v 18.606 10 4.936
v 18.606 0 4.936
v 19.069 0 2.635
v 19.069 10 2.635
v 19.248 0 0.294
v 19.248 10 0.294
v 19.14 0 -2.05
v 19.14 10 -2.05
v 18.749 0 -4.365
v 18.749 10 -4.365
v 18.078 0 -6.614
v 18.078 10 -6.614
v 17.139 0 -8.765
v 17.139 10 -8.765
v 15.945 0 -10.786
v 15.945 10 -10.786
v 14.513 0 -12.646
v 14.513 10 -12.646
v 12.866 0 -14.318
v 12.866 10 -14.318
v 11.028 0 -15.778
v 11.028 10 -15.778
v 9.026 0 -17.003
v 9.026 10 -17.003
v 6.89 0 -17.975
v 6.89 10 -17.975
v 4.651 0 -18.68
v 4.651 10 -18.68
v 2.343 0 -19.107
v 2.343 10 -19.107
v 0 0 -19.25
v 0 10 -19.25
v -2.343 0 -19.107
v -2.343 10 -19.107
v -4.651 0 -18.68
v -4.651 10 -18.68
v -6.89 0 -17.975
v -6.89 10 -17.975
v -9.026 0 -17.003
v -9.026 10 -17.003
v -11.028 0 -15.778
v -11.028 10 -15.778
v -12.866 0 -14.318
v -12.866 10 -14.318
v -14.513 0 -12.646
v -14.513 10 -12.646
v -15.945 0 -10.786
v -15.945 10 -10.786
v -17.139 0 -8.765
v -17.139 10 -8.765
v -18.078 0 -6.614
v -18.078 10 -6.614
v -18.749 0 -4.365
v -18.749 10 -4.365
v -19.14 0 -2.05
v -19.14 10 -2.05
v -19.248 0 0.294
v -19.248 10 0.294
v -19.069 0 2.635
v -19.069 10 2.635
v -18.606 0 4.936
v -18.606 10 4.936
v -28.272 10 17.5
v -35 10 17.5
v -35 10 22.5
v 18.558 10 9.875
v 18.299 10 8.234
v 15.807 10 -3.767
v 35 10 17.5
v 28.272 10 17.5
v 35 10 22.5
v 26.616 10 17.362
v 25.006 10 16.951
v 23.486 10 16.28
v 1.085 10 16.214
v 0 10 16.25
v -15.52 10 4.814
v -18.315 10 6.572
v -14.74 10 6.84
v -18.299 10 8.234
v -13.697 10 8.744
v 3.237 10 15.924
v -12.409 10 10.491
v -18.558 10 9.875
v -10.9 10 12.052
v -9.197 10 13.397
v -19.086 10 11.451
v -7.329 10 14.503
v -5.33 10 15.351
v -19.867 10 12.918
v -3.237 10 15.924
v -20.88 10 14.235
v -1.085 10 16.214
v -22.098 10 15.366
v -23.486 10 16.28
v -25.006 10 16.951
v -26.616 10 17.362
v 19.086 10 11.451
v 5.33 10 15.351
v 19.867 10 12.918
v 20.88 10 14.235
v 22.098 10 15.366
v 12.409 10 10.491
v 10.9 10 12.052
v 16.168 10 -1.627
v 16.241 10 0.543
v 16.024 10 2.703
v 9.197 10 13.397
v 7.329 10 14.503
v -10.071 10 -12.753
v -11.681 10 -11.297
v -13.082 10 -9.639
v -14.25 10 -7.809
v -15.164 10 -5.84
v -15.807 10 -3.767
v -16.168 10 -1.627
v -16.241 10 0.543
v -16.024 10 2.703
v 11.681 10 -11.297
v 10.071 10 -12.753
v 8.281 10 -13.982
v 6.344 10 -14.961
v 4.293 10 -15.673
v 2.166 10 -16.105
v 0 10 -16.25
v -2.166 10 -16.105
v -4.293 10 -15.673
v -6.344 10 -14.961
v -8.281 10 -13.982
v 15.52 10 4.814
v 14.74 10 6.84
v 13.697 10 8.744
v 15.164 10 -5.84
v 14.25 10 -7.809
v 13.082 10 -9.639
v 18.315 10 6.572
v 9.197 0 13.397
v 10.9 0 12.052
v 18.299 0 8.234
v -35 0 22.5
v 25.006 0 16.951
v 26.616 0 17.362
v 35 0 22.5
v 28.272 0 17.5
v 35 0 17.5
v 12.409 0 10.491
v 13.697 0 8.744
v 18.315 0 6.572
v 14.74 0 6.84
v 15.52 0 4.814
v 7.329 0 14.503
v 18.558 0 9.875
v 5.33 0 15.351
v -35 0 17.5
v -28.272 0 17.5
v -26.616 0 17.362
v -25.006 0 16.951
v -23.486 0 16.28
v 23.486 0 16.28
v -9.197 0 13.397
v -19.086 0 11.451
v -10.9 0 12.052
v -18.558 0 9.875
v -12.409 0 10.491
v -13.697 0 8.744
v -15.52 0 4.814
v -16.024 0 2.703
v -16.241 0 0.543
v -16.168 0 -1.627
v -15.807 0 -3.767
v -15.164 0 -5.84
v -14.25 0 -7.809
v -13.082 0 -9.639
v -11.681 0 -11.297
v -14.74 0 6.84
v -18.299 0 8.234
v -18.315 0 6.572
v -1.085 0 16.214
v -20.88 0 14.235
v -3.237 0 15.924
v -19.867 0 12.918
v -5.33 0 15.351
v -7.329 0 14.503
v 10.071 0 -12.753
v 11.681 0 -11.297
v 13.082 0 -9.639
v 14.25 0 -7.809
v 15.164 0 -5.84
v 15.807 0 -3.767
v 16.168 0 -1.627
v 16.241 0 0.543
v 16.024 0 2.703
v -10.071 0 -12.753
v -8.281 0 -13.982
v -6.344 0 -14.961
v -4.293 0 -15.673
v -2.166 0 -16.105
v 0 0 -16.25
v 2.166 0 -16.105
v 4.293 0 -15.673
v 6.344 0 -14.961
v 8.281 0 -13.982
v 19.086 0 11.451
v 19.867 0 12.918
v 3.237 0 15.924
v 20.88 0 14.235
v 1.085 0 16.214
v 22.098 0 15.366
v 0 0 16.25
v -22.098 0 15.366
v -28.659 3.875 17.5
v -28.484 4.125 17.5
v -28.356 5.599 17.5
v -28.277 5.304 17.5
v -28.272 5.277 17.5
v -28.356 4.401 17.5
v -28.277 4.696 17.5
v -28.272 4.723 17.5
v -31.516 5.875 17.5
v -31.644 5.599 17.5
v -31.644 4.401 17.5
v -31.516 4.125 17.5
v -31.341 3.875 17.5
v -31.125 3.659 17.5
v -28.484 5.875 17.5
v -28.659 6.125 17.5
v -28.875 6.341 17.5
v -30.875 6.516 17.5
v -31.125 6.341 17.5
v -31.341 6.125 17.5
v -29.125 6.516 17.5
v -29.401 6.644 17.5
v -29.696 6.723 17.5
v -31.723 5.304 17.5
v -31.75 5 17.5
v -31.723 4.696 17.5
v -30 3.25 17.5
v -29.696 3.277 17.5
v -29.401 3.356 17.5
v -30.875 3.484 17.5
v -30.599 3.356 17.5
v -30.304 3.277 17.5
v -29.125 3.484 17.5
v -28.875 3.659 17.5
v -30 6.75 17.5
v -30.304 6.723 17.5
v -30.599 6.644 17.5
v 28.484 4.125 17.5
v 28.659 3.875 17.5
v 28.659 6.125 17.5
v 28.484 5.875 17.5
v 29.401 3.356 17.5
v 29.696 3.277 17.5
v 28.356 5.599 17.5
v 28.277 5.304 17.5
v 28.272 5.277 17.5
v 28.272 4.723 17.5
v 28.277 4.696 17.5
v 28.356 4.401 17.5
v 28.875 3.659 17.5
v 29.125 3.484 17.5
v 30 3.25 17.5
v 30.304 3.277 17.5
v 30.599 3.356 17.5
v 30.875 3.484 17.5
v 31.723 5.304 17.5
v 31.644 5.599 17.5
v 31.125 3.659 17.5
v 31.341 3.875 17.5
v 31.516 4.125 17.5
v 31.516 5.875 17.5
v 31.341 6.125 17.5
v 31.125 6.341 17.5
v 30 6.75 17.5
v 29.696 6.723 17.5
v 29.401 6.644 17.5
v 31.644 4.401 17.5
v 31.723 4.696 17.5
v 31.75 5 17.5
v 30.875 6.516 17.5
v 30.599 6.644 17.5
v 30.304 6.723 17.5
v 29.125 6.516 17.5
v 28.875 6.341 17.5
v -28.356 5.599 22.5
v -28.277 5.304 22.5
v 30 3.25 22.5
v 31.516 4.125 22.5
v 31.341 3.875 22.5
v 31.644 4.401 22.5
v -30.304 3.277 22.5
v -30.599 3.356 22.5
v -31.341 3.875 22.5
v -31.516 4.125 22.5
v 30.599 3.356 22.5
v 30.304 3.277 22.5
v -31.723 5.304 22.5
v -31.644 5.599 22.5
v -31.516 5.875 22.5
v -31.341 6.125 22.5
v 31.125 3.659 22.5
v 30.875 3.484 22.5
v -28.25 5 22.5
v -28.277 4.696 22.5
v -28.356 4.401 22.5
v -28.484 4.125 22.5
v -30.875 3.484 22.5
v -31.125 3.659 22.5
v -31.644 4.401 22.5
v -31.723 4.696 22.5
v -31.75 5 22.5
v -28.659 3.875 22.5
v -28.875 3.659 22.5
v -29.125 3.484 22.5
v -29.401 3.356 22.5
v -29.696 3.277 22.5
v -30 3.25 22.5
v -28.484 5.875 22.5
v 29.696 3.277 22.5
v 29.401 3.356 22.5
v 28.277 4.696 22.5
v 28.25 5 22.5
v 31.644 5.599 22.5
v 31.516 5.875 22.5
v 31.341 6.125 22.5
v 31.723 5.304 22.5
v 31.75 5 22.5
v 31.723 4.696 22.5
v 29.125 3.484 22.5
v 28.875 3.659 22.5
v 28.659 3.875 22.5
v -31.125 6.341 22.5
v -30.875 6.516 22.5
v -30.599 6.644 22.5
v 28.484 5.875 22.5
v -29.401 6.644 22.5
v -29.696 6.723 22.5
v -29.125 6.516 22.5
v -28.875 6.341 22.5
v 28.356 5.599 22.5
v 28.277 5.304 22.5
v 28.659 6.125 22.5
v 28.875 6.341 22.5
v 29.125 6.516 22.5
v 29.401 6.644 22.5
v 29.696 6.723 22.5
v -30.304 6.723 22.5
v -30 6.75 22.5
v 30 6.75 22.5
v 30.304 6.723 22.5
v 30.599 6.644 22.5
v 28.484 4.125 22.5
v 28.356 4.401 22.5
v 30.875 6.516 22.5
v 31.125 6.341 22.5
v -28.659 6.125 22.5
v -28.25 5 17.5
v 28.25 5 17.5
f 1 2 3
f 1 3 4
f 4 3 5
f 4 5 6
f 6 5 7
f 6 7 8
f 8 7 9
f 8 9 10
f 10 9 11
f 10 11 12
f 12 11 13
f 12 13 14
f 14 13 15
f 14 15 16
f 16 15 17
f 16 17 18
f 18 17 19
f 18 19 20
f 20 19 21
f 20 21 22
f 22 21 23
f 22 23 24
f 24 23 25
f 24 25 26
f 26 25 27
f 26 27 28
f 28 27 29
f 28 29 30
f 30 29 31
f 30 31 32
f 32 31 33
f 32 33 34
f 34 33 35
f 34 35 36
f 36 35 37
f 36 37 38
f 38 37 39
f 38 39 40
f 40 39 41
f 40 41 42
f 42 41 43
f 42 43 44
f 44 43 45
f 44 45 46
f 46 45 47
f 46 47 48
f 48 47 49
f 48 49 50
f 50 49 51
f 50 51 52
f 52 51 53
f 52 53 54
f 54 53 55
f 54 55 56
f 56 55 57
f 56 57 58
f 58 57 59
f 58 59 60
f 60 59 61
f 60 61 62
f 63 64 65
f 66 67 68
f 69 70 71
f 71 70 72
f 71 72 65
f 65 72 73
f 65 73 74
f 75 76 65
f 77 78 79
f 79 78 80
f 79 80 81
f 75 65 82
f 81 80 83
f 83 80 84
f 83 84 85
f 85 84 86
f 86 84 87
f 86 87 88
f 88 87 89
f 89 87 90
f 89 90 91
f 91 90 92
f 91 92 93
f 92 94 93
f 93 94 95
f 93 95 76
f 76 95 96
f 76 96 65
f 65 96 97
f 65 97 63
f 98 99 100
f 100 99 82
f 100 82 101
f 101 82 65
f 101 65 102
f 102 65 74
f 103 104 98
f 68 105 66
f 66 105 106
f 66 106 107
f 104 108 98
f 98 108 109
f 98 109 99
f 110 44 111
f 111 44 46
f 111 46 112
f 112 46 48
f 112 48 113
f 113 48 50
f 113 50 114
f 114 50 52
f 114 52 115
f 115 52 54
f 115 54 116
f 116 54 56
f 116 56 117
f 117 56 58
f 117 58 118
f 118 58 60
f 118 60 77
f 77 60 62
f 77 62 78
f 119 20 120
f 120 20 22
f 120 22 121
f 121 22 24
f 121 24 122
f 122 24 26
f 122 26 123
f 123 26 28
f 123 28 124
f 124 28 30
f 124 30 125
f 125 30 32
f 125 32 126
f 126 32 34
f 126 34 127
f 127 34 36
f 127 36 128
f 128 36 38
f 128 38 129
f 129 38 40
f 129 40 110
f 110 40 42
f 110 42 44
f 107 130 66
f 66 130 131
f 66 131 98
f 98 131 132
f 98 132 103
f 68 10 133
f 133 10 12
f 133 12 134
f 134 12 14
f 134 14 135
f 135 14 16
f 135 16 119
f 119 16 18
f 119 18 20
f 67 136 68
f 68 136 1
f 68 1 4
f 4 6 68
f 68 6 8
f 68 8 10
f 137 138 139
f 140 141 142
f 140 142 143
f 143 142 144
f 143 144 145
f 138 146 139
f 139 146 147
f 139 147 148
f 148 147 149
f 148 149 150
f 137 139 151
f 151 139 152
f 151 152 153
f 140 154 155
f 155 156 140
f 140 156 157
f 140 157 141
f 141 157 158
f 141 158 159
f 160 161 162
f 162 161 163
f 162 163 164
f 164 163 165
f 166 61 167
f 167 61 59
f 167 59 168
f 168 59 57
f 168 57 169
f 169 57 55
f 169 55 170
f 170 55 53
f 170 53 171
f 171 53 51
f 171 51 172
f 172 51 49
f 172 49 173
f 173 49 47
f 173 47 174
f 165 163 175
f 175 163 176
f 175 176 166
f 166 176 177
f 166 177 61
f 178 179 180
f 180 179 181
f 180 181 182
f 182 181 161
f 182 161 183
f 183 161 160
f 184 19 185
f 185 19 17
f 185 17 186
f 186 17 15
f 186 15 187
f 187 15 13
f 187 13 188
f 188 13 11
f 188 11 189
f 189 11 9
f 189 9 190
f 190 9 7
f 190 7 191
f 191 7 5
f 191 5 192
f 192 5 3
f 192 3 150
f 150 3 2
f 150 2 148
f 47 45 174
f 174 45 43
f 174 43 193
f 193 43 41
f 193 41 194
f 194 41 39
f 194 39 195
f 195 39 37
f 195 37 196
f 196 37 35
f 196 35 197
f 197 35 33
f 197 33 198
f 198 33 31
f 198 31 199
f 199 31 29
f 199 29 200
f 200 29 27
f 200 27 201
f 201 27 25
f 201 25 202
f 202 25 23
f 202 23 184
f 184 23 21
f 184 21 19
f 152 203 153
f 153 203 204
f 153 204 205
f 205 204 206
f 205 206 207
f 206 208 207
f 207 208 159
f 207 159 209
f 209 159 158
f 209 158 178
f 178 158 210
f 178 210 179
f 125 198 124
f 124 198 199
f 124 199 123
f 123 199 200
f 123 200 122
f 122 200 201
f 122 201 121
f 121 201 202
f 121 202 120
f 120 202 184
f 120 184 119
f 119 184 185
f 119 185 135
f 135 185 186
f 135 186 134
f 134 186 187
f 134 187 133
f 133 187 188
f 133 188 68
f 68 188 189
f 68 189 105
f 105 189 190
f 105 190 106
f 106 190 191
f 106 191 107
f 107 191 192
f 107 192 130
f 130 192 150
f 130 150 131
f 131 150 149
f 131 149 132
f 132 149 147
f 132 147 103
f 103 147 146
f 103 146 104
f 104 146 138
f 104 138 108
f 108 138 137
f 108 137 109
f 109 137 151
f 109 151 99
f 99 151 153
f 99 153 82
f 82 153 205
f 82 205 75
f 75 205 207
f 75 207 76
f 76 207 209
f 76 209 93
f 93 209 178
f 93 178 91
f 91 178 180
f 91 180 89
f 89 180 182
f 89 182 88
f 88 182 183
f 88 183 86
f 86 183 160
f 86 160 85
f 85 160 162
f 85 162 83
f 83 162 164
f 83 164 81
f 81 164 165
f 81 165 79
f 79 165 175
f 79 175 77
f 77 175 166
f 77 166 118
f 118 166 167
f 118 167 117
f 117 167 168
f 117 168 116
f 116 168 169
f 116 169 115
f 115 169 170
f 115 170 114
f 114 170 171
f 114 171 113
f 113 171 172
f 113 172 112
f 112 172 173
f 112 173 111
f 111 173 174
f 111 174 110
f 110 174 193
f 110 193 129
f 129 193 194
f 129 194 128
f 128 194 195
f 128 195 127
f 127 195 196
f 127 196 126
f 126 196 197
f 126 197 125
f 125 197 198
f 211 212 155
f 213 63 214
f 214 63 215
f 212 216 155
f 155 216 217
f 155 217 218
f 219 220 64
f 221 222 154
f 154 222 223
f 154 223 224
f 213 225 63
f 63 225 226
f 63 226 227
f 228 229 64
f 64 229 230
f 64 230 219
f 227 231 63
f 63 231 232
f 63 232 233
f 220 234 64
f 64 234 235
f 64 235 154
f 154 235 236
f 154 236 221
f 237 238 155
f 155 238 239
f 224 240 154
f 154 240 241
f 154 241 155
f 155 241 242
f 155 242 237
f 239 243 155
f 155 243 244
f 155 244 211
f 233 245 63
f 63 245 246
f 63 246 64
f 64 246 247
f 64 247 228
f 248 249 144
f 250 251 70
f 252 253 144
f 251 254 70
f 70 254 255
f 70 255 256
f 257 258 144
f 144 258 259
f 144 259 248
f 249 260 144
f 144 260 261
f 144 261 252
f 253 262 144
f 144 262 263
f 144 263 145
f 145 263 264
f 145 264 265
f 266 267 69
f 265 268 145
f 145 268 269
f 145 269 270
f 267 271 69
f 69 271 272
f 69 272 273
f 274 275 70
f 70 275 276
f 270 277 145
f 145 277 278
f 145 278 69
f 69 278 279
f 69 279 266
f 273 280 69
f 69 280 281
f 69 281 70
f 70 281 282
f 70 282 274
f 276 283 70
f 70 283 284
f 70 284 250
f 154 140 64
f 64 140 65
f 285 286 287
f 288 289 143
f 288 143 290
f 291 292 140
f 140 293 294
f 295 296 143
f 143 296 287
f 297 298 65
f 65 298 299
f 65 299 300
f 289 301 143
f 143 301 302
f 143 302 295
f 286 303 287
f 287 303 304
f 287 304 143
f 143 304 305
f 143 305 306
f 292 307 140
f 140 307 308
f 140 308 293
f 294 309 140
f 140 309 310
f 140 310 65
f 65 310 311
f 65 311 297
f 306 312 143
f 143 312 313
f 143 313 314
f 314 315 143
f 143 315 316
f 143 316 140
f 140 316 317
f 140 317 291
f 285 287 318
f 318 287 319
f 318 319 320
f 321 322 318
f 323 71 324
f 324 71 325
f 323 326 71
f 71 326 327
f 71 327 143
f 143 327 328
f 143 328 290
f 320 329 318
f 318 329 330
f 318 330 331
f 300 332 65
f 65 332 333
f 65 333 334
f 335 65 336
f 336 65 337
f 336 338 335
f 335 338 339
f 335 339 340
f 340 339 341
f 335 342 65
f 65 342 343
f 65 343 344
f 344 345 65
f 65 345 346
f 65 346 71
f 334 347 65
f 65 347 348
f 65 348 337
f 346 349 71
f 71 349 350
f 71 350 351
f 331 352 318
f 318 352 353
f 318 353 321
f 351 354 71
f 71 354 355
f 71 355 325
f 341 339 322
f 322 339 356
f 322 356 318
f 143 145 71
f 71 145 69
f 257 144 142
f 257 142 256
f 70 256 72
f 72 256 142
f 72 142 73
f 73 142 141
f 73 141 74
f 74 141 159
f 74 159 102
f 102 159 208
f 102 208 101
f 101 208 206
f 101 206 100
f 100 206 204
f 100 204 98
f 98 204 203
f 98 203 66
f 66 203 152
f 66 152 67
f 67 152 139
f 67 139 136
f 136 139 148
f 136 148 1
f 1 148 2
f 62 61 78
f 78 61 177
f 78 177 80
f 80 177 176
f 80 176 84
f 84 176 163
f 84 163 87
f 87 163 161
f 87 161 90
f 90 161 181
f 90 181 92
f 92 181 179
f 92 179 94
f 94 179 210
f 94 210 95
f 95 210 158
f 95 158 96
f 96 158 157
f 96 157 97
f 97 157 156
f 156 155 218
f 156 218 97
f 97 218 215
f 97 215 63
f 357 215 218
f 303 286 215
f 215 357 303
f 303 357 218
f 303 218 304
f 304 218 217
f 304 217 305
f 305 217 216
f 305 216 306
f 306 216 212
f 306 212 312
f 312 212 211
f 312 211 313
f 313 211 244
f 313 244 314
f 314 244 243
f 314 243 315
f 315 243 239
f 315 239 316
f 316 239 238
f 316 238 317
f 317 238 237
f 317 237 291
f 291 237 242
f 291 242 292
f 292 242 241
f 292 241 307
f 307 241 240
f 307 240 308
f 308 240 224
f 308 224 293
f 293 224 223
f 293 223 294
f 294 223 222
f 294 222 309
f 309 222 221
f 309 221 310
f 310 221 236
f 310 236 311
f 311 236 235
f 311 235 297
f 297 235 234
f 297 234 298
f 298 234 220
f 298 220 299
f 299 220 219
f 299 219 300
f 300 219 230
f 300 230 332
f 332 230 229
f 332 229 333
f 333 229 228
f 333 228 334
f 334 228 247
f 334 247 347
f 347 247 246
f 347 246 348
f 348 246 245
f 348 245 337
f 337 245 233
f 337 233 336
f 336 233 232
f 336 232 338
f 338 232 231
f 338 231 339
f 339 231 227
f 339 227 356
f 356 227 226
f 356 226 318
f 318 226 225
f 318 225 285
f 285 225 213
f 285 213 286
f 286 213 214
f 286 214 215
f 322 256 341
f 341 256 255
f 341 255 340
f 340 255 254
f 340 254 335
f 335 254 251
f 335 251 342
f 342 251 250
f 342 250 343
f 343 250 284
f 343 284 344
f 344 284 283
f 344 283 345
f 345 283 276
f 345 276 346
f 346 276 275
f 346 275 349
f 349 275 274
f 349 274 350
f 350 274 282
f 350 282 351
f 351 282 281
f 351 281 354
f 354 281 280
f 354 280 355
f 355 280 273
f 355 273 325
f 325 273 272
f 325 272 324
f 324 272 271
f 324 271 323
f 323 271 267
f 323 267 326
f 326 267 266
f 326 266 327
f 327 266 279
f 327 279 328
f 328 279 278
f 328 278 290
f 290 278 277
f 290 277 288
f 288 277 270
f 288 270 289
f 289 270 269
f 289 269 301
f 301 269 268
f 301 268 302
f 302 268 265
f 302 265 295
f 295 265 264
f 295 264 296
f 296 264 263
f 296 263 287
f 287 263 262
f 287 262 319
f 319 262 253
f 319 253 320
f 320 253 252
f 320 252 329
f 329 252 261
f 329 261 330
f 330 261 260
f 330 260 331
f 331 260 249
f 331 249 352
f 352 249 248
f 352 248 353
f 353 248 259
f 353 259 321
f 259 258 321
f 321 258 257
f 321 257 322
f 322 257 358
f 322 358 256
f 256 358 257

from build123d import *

# Parameters (mm, degrees)
SKETCH1_R           = 19.25
SKETCH1_R_2         = 16.25
BOSS_EXTRUDE1_DEPTH = 10
SKETCH2_W           = 70
SKETCH2_H           = 5
BOSS_EXTRUDE2_DEPTH = 10
FILLET1_R           = 10
SKETCH3_R           = 1.75
CUT_EXTRUDE1_DEPTH  = 52.725839771


with BuildPart() as part:
    # Sketch1 → Boss-Extrude1 (new body)
    with BuildSketch(Plane(origin=(0, 0, 0), x_dir=(1, 0, 0), z_dir=(0, 1, 0))):
        with Locations(Location((0, 0, 0), (0, 0, 270))):
            Circle(SKETCH1_R)
        with Locations(Location((0, 0, 0), (0, 0, 270))):
            Circle(SKETCH1_R_2, mode=Mode.SUBTRACT)
    extrude(amount=BOSS_EXTRUDE1_DEPTH)

    # Sketch2 → Boss-Extrude2 (add)
    with BuildSketch(Plane(origin=(0, 0, 0), x_dir=(1, 0, 0), z_dir=(0, 1, 0))):
        with Locations((0, -20)):
            Rectangle(SKETCH2_W, SKETCH2_H)
    extrude(amount=BOSS_EXTRUDE2_DEPTH)

    # Fillet1
    fillet1_edges = [part.edges().sort_by_distance(p)[0] for p in [
        (8.019507466, 5, 17.5),
        (-8.019507466, 5, 17.5),
    ]]
    fillet(fillet1_edges, radius=FILLET1_R)

    # Sketch3 → Cut-Extrude1 (cut, through all)
    with BuildSketch(Plane(origin=(0, 0, 17.5), x_dir=(-1, 0, 0), z_dir=(0, 0, -1))):
        with Locations((30, 5)):
            Circle(SKETCH3_R)
        with Locations((-30, 5)):
            Circle(SKETCH3_R)
    extrude(amount=-CUT_EXTRUDE1_DEPTH, mode=Mode.SUBTRACT)


solid = part.part
